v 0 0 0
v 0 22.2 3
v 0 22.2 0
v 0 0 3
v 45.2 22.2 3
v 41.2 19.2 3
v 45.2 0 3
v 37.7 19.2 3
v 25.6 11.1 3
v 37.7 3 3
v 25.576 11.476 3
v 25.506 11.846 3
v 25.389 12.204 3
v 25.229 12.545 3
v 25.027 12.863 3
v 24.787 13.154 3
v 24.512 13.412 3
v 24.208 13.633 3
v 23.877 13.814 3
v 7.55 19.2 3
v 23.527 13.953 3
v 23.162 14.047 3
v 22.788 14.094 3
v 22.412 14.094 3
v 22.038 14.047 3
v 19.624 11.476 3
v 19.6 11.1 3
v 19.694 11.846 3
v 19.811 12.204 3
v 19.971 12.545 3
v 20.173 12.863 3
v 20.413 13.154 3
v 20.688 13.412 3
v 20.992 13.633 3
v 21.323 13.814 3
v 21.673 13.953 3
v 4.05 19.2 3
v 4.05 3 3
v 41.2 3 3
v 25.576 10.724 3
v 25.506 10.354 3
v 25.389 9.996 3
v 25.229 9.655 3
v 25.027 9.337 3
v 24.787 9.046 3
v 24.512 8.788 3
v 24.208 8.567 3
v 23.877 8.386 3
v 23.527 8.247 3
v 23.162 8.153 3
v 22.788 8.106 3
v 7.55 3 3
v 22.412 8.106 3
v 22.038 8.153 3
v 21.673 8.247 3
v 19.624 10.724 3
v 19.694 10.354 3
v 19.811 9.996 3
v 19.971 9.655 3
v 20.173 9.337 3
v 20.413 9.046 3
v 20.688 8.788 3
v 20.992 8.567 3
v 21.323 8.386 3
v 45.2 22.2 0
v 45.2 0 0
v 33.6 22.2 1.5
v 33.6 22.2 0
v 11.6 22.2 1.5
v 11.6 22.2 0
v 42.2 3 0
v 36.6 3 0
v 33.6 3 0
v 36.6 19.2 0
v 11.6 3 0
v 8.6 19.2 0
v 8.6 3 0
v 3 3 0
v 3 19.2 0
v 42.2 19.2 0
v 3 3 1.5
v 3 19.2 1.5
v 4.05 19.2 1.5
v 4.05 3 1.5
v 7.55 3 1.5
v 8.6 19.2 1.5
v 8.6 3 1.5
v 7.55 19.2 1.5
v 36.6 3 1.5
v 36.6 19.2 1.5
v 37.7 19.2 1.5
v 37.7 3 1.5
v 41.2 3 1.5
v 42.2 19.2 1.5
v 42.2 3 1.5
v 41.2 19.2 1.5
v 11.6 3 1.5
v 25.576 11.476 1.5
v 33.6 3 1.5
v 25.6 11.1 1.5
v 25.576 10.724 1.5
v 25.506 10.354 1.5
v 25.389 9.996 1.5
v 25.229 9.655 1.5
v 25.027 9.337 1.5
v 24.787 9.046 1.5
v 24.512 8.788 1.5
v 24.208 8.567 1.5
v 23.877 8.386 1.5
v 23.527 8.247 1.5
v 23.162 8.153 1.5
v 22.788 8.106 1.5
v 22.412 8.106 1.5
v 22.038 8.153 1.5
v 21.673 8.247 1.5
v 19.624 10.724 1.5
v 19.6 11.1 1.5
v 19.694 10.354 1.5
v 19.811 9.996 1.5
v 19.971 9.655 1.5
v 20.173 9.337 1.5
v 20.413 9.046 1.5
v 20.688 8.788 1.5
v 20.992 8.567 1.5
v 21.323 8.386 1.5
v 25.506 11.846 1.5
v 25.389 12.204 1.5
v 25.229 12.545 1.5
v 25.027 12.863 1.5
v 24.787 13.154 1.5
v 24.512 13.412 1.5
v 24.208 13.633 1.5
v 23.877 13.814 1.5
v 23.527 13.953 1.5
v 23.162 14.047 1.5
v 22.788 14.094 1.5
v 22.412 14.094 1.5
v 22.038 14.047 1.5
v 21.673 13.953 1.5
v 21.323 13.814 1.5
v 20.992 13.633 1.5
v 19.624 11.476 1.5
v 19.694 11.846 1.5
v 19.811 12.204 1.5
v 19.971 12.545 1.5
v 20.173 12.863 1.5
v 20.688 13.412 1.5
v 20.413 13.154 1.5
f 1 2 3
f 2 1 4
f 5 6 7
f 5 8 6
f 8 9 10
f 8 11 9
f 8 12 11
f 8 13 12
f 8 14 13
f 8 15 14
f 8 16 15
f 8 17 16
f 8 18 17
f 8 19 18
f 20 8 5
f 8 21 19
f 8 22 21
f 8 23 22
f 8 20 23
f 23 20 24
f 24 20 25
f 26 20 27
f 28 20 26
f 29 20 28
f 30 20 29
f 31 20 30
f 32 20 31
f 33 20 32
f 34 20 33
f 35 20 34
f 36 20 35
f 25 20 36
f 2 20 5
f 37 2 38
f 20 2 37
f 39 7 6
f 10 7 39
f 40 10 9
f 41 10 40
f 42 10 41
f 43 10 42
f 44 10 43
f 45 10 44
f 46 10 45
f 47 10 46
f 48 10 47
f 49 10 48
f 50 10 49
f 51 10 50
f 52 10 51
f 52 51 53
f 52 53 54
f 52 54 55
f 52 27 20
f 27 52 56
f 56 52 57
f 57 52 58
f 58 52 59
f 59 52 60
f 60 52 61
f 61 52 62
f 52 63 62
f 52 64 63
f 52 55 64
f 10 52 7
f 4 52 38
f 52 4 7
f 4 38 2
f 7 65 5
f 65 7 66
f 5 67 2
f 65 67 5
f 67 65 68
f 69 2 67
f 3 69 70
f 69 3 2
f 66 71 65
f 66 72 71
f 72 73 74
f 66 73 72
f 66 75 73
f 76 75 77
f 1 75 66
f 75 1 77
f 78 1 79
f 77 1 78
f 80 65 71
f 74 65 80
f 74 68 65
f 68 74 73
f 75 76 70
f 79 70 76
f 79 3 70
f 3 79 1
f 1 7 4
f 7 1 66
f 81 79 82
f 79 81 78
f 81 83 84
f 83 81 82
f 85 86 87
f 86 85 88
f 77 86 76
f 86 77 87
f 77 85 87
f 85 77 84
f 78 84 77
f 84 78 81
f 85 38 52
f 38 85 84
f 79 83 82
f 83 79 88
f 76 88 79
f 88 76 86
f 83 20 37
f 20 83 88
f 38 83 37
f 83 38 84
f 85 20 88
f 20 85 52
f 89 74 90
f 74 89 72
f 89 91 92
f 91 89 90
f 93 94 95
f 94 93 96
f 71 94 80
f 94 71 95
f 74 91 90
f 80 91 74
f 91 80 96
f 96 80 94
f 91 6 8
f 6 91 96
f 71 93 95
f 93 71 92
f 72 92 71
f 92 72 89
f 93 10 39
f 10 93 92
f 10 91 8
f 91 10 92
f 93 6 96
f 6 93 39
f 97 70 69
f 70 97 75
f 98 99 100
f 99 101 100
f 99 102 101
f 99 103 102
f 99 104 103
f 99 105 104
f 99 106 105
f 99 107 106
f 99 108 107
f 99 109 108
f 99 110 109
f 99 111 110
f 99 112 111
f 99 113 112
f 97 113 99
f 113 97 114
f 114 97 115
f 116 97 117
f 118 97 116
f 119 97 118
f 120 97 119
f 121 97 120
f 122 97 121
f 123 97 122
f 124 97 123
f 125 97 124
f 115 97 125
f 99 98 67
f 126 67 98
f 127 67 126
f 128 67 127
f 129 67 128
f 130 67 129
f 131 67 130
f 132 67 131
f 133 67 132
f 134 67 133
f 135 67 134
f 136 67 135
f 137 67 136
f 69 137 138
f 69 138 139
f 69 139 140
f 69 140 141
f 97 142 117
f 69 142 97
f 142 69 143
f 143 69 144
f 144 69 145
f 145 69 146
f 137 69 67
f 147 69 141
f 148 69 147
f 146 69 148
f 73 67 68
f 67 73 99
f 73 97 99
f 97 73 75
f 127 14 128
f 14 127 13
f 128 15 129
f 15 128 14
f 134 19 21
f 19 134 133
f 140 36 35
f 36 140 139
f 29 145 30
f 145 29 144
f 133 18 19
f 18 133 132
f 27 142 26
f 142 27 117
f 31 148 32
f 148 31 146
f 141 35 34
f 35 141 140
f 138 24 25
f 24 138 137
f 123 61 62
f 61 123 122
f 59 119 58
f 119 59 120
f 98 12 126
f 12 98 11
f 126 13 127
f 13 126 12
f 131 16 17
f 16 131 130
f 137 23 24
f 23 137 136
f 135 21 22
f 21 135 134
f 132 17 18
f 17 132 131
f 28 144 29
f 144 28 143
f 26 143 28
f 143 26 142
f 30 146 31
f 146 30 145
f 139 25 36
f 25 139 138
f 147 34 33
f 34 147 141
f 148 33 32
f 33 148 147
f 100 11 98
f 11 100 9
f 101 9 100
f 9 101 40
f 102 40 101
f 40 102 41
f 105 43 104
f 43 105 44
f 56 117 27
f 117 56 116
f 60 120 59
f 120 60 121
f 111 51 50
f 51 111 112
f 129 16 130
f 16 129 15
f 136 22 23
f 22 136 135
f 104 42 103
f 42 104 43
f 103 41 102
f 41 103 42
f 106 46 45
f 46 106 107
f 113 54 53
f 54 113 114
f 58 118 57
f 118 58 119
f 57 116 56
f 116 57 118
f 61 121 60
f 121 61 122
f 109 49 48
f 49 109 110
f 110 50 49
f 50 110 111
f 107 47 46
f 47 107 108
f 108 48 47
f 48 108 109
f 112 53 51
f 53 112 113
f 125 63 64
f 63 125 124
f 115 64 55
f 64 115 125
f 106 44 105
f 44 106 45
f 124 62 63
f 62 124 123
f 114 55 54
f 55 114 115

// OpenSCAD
width = 40;
depth = 20; 
height = 3;
margin = 3;
thickness = 3;
slotsize = 3.5;
fixheight = 30;
nutslot_width = 5.6;
magnet_radius = 3;
board_mounting_hole_radius = 1.3;
sensor_board_width = 22;
sensor_board_height = 11+5.2; 
total_width = sensor_board_width + 4*margin + 2*nutslot_width;
total_height = sensor_board_height + 2*margin;
nutsize = 3.5;
$fn=50;

union() {
    difference() {
        cube([total_width, total_height, thickness]);
        translate([margin, margin, 0]) {
            cube([nutslot_width, total_height-2*margin,0.5*thickness]);
        }
        translate([margin+0.5*nutslot_width-0.5*nutsize, margin,0]) {
            cube([nutsize, total_height-2*margin, 2*thickness]);
        }
        translate([total_width - margin - nutslot_width, margin, 0]) {
            cube([nutslot_width, total_height-2*margin,0.5*thickness]);
        }
        translate([total_width-nutsize-margin-1, margin,0]) {
            cube([nutsize, total_height-2*margin, 2*thickness]);
        }
        translate([0.5*total_width-0.5*sensor_board_width, margin,0]) {
            cube([sensor_board_width, sensor_board_height+20,0.5*thickness]);
        }
        translate([0.5*total_width, 0.5*total_height,0]) {
            cylinder(h=2*thickness,d=6,center=true);
        }
    }
}

/*
union() {
		difference() {
			cube([width, slotsize,fixheight]);
            rotate([0,0,0]) {
			translate([nutslot_width*0.5, 0,0.5*slotsize]) {
				nutslot();
			}}
            rotate([0,0,0]) {
			translate([width-nutslot_width-(0.5*nutslot_width), 0,0.5*slotsize]) {
				nutslot();	
			}
        }
			translate([0.5*width,-0.1,0.5*fixheight]) {
				rotate([90,0,0]) {
					cylinder(h=10,r=magnet_radius, center=true);
				}
			}
		
            translate([0.5*width-0.5*22.5, slotsize+1, slotsize]) {
            rotate([90,0,0]) {
                cube([22.5,30,3]);
                }
            }}
        }
*/
module nutslot() {
    
	translate([(0.5 * nutslot_width) - (0.5 * slotsize), 0, 0]) {
		cube([slotsize, 0.5*slotsize, fixheight - slotsize]);
	}
	translate([0, 0.5*slotsize, 0]) {
		cube([nutslot_width, 0.5*slotsize, fixheight - slotsize]);
	}
}
